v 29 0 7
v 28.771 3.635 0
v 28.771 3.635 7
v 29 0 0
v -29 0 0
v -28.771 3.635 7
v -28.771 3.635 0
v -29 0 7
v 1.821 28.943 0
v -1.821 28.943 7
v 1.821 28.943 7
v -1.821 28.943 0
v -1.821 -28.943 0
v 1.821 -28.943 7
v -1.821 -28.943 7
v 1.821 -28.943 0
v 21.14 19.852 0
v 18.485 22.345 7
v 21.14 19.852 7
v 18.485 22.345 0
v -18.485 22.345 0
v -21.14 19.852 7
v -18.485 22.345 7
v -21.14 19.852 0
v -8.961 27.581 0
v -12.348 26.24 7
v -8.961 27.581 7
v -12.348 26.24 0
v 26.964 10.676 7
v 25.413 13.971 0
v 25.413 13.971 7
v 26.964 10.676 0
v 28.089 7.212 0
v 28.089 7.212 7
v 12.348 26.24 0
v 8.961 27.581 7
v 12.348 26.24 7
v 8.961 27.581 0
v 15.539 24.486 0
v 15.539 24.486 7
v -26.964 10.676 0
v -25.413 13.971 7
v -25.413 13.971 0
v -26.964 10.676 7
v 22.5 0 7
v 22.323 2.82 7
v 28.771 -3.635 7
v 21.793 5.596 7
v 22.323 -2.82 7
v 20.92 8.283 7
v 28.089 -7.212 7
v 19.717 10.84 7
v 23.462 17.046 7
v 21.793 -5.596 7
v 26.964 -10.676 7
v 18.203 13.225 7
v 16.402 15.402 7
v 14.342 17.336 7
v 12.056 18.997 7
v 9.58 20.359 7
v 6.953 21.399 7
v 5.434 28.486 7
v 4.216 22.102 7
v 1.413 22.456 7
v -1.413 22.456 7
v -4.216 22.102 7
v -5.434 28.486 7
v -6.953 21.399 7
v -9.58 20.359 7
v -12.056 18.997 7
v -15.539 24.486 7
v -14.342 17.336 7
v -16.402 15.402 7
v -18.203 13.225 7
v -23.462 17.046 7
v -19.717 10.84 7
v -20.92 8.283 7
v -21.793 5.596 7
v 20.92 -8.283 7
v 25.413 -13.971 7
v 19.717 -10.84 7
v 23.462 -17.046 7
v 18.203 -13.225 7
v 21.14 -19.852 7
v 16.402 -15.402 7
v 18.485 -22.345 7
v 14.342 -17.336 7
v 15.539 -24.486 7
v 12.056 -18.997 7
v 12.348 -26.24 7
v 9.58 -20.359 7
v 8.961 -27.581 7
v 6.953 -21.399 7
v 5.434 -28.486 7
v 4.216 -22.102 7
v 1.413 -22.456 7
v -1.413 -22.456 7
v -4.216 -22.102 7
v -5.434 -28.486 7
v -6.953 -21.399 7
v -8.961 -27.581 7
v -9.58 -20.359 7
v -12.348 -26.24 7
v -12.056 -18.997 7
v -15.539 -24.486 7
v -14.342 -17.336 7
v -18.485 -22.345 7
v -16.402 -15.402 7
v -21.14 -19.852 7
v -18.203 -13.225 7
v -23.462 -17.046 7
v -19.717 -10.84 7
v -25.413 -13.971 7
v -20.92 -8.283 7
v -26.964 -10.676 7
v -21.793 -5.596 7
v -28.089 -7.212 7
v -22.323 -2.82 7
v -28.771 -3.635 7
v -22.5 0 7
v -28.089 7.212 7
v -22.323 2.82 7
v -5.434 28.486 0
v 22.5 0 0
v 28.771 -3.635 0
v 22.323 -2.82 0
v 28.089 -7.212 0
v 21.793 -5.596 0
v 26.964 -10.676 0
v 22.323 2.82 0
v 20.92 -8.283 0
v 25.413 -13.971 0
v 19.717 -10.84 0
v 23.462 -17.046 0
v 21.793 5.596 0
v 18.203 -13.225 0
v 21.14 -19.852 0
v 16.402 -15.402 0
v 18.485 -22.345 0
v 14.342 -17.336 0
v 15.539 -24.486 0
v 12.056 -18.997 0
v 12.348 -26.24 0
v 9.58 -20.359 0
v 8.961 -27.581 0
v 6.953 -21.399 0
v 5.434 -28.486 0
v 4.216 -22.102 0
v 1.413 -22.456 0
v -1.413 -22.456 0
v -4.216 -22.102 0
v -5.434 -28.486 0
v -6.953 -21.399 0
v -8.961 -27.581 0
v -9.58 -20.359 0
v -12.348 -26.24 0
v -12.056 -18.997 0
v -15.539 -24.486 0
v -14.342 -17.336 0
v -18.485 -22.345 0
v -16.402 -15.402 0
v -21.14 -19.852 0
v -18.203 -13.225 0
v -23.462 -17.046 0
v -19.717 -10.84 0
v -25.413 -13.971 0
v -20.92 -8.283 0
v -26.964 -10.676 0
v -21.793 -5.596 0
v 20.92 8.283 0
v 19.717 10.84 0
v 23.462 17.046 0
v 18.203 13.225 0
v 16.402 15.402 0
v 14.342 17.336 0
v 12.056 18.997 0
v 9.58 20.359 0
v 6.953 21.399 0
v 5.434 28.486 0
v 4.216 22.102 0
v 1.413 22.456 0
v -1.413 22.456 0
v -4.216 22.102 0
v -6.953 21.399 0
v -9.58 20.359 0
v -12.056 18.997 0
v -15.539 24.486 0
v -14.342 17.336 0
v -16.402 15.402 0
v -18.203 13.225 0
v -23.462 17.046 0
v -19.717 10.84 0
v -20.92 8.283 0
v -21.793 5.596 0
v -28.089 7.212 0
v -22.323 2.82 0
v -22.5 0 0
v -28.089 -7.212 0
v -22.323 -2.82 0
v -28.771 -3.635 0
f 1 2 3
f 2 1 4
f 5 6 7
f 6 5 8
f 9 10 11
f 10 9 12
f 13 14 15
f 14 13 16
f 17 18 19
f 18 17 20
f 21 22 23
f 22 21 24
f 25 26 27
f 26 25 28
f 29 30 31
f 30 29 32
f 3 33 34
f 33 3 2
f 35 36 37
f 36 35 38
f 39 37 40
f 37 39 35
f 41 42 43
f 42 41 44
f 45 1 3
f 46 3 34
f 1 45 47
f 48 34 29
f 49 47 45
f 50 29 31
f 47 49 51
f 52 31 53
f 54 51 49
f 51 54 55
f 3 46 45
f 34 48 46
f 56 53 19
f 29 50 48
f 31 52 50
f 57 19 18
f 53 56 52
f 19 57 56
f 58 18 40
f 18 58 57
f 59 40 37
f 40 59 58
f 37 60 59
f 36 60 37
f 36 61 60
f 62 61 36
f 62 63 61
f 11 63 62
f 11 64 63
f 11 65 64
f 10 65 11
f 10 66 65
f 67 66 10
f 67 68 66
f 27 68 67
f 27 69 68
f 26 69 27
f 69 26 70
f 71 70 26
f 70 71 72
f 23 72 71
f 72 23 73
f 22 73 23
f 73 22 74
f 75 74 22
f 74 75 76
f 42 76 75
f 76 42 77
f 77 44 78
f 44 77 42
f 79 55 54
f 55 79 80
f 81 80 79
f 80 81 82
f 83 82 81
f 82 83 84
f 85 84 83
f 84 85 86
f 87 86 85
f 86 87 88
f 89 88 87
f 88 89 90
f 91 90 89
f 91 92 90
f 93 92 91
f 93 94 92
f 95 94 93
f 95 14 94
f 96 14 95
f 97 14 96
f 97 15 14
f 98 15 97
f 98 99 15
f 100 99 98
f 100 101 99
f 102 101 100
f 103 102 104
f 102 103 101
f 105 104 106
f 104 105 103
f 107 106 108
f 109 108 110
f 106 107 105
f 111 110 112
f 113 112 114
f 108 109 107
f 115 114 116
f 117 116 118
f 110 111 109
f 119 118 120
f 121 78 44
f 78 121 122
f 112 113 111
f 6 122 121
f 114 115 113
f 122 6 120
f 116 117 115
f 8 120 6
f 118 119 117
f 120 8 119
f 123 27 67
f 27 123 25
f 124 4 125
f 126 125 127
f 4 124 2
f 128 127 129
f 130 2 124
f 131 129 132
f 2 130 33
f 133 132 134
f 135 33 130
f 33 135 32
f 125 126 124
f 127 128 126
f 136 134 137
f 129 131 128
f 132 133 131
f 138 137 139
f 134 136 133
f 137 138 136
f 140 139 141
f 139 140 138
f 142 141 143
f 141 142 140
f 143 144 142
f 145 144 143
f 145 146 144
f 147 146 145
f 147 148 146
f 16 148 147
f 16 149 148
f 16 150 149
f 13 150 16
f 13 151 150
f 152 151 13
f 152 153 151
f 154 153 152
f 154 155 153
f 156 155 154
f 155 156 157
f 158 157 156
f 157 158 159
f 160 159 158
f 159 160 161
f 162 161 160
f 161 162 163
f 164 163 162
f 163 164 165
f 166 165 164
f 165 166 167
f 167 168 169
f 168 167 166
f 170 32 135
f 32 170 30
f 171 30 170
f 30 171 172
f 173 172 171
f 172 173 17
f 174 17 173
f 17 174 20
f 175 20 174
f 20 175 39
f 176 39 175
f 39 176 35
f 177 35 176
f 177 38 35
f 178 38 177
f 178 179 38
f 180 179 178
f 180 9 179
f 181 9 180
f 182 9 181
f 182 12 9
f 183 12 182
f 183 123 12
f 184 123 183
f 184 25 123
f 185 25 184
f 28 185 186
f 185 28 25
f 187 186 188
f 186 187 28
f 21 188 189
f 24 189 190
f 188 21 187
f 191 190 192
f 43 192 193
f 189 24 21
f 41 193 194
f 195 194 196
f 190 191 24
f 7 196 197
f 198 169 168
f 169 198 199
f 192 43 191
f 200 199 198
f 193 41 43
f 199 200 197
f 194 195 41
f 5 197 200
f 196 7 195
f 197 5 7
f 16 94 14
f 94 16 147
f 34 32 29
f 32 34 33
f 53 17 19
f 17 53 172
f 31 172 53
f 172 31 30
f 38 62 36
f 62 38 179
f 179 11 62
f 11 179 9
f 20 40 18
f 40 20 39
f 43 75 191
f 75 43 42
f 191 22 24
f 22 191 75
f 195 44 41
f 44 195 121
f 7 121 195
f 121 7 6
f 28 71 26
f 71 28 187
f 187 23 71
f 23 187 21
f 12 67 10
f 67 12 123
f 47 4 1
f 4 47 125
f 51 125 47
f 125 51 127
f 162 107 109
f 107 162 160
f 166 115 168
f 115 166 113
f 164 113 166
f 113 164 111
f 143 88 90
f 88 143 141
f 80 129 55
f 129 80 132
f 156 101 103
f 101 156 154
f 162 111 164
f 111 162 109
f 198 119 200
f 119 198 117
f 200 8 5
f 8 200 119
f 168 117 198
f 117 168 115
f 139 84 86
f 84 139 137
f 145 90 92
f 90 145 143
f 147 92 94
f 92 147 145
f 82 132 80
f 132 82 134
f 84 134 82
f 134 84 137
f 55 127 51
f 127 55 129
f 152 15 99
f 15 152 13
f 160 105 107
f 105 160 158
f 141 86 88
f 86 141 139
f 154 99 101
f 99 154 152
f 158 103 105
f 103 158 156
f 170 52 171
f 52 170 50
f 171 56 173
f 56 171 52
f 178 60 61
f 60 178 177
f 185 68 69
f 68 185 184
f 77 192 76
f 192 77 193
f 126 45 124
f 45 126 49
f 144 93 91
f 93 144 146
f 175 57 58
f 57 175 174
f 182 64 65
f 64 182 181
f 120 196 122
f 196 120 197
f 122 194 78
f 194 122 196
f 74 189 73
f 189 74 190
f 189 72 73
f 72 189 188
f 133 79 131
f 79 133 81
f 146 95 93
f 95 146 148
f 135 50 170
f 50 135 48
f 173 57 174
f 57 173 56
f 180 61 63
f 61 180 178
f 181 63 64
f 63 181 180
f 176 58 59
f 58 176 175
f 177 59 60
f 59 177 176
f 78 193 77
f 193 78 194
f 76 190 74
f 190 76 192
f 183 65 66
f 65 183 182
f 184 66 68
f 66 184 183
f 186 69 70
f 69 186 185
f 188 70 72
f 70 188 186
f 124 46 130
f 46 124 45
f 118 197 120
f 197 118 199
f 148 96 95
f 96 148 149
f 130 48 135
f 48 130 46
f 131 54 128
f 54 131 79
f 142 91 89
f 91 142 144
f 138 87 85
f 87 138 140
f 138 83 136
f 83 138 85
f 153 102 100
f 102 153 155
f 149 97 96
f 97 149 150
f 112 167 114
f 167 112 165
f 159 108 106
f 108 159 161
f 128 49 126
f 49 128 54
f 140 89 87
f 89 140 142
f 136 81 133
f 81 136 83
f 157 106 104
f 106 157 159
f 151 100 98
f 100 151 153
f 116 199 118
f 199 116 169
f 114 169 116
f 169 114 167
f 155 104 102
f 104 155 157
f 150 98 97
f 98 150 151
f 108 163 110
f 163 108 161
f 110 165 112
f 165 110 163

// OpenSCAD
$fn = 50;


difference() {
	union() {
		cylinder(h = 7, r = 29.0000000000);
	}
	union() {
		cylinder(h = 7, r = 22.5000000000);
	}
}
